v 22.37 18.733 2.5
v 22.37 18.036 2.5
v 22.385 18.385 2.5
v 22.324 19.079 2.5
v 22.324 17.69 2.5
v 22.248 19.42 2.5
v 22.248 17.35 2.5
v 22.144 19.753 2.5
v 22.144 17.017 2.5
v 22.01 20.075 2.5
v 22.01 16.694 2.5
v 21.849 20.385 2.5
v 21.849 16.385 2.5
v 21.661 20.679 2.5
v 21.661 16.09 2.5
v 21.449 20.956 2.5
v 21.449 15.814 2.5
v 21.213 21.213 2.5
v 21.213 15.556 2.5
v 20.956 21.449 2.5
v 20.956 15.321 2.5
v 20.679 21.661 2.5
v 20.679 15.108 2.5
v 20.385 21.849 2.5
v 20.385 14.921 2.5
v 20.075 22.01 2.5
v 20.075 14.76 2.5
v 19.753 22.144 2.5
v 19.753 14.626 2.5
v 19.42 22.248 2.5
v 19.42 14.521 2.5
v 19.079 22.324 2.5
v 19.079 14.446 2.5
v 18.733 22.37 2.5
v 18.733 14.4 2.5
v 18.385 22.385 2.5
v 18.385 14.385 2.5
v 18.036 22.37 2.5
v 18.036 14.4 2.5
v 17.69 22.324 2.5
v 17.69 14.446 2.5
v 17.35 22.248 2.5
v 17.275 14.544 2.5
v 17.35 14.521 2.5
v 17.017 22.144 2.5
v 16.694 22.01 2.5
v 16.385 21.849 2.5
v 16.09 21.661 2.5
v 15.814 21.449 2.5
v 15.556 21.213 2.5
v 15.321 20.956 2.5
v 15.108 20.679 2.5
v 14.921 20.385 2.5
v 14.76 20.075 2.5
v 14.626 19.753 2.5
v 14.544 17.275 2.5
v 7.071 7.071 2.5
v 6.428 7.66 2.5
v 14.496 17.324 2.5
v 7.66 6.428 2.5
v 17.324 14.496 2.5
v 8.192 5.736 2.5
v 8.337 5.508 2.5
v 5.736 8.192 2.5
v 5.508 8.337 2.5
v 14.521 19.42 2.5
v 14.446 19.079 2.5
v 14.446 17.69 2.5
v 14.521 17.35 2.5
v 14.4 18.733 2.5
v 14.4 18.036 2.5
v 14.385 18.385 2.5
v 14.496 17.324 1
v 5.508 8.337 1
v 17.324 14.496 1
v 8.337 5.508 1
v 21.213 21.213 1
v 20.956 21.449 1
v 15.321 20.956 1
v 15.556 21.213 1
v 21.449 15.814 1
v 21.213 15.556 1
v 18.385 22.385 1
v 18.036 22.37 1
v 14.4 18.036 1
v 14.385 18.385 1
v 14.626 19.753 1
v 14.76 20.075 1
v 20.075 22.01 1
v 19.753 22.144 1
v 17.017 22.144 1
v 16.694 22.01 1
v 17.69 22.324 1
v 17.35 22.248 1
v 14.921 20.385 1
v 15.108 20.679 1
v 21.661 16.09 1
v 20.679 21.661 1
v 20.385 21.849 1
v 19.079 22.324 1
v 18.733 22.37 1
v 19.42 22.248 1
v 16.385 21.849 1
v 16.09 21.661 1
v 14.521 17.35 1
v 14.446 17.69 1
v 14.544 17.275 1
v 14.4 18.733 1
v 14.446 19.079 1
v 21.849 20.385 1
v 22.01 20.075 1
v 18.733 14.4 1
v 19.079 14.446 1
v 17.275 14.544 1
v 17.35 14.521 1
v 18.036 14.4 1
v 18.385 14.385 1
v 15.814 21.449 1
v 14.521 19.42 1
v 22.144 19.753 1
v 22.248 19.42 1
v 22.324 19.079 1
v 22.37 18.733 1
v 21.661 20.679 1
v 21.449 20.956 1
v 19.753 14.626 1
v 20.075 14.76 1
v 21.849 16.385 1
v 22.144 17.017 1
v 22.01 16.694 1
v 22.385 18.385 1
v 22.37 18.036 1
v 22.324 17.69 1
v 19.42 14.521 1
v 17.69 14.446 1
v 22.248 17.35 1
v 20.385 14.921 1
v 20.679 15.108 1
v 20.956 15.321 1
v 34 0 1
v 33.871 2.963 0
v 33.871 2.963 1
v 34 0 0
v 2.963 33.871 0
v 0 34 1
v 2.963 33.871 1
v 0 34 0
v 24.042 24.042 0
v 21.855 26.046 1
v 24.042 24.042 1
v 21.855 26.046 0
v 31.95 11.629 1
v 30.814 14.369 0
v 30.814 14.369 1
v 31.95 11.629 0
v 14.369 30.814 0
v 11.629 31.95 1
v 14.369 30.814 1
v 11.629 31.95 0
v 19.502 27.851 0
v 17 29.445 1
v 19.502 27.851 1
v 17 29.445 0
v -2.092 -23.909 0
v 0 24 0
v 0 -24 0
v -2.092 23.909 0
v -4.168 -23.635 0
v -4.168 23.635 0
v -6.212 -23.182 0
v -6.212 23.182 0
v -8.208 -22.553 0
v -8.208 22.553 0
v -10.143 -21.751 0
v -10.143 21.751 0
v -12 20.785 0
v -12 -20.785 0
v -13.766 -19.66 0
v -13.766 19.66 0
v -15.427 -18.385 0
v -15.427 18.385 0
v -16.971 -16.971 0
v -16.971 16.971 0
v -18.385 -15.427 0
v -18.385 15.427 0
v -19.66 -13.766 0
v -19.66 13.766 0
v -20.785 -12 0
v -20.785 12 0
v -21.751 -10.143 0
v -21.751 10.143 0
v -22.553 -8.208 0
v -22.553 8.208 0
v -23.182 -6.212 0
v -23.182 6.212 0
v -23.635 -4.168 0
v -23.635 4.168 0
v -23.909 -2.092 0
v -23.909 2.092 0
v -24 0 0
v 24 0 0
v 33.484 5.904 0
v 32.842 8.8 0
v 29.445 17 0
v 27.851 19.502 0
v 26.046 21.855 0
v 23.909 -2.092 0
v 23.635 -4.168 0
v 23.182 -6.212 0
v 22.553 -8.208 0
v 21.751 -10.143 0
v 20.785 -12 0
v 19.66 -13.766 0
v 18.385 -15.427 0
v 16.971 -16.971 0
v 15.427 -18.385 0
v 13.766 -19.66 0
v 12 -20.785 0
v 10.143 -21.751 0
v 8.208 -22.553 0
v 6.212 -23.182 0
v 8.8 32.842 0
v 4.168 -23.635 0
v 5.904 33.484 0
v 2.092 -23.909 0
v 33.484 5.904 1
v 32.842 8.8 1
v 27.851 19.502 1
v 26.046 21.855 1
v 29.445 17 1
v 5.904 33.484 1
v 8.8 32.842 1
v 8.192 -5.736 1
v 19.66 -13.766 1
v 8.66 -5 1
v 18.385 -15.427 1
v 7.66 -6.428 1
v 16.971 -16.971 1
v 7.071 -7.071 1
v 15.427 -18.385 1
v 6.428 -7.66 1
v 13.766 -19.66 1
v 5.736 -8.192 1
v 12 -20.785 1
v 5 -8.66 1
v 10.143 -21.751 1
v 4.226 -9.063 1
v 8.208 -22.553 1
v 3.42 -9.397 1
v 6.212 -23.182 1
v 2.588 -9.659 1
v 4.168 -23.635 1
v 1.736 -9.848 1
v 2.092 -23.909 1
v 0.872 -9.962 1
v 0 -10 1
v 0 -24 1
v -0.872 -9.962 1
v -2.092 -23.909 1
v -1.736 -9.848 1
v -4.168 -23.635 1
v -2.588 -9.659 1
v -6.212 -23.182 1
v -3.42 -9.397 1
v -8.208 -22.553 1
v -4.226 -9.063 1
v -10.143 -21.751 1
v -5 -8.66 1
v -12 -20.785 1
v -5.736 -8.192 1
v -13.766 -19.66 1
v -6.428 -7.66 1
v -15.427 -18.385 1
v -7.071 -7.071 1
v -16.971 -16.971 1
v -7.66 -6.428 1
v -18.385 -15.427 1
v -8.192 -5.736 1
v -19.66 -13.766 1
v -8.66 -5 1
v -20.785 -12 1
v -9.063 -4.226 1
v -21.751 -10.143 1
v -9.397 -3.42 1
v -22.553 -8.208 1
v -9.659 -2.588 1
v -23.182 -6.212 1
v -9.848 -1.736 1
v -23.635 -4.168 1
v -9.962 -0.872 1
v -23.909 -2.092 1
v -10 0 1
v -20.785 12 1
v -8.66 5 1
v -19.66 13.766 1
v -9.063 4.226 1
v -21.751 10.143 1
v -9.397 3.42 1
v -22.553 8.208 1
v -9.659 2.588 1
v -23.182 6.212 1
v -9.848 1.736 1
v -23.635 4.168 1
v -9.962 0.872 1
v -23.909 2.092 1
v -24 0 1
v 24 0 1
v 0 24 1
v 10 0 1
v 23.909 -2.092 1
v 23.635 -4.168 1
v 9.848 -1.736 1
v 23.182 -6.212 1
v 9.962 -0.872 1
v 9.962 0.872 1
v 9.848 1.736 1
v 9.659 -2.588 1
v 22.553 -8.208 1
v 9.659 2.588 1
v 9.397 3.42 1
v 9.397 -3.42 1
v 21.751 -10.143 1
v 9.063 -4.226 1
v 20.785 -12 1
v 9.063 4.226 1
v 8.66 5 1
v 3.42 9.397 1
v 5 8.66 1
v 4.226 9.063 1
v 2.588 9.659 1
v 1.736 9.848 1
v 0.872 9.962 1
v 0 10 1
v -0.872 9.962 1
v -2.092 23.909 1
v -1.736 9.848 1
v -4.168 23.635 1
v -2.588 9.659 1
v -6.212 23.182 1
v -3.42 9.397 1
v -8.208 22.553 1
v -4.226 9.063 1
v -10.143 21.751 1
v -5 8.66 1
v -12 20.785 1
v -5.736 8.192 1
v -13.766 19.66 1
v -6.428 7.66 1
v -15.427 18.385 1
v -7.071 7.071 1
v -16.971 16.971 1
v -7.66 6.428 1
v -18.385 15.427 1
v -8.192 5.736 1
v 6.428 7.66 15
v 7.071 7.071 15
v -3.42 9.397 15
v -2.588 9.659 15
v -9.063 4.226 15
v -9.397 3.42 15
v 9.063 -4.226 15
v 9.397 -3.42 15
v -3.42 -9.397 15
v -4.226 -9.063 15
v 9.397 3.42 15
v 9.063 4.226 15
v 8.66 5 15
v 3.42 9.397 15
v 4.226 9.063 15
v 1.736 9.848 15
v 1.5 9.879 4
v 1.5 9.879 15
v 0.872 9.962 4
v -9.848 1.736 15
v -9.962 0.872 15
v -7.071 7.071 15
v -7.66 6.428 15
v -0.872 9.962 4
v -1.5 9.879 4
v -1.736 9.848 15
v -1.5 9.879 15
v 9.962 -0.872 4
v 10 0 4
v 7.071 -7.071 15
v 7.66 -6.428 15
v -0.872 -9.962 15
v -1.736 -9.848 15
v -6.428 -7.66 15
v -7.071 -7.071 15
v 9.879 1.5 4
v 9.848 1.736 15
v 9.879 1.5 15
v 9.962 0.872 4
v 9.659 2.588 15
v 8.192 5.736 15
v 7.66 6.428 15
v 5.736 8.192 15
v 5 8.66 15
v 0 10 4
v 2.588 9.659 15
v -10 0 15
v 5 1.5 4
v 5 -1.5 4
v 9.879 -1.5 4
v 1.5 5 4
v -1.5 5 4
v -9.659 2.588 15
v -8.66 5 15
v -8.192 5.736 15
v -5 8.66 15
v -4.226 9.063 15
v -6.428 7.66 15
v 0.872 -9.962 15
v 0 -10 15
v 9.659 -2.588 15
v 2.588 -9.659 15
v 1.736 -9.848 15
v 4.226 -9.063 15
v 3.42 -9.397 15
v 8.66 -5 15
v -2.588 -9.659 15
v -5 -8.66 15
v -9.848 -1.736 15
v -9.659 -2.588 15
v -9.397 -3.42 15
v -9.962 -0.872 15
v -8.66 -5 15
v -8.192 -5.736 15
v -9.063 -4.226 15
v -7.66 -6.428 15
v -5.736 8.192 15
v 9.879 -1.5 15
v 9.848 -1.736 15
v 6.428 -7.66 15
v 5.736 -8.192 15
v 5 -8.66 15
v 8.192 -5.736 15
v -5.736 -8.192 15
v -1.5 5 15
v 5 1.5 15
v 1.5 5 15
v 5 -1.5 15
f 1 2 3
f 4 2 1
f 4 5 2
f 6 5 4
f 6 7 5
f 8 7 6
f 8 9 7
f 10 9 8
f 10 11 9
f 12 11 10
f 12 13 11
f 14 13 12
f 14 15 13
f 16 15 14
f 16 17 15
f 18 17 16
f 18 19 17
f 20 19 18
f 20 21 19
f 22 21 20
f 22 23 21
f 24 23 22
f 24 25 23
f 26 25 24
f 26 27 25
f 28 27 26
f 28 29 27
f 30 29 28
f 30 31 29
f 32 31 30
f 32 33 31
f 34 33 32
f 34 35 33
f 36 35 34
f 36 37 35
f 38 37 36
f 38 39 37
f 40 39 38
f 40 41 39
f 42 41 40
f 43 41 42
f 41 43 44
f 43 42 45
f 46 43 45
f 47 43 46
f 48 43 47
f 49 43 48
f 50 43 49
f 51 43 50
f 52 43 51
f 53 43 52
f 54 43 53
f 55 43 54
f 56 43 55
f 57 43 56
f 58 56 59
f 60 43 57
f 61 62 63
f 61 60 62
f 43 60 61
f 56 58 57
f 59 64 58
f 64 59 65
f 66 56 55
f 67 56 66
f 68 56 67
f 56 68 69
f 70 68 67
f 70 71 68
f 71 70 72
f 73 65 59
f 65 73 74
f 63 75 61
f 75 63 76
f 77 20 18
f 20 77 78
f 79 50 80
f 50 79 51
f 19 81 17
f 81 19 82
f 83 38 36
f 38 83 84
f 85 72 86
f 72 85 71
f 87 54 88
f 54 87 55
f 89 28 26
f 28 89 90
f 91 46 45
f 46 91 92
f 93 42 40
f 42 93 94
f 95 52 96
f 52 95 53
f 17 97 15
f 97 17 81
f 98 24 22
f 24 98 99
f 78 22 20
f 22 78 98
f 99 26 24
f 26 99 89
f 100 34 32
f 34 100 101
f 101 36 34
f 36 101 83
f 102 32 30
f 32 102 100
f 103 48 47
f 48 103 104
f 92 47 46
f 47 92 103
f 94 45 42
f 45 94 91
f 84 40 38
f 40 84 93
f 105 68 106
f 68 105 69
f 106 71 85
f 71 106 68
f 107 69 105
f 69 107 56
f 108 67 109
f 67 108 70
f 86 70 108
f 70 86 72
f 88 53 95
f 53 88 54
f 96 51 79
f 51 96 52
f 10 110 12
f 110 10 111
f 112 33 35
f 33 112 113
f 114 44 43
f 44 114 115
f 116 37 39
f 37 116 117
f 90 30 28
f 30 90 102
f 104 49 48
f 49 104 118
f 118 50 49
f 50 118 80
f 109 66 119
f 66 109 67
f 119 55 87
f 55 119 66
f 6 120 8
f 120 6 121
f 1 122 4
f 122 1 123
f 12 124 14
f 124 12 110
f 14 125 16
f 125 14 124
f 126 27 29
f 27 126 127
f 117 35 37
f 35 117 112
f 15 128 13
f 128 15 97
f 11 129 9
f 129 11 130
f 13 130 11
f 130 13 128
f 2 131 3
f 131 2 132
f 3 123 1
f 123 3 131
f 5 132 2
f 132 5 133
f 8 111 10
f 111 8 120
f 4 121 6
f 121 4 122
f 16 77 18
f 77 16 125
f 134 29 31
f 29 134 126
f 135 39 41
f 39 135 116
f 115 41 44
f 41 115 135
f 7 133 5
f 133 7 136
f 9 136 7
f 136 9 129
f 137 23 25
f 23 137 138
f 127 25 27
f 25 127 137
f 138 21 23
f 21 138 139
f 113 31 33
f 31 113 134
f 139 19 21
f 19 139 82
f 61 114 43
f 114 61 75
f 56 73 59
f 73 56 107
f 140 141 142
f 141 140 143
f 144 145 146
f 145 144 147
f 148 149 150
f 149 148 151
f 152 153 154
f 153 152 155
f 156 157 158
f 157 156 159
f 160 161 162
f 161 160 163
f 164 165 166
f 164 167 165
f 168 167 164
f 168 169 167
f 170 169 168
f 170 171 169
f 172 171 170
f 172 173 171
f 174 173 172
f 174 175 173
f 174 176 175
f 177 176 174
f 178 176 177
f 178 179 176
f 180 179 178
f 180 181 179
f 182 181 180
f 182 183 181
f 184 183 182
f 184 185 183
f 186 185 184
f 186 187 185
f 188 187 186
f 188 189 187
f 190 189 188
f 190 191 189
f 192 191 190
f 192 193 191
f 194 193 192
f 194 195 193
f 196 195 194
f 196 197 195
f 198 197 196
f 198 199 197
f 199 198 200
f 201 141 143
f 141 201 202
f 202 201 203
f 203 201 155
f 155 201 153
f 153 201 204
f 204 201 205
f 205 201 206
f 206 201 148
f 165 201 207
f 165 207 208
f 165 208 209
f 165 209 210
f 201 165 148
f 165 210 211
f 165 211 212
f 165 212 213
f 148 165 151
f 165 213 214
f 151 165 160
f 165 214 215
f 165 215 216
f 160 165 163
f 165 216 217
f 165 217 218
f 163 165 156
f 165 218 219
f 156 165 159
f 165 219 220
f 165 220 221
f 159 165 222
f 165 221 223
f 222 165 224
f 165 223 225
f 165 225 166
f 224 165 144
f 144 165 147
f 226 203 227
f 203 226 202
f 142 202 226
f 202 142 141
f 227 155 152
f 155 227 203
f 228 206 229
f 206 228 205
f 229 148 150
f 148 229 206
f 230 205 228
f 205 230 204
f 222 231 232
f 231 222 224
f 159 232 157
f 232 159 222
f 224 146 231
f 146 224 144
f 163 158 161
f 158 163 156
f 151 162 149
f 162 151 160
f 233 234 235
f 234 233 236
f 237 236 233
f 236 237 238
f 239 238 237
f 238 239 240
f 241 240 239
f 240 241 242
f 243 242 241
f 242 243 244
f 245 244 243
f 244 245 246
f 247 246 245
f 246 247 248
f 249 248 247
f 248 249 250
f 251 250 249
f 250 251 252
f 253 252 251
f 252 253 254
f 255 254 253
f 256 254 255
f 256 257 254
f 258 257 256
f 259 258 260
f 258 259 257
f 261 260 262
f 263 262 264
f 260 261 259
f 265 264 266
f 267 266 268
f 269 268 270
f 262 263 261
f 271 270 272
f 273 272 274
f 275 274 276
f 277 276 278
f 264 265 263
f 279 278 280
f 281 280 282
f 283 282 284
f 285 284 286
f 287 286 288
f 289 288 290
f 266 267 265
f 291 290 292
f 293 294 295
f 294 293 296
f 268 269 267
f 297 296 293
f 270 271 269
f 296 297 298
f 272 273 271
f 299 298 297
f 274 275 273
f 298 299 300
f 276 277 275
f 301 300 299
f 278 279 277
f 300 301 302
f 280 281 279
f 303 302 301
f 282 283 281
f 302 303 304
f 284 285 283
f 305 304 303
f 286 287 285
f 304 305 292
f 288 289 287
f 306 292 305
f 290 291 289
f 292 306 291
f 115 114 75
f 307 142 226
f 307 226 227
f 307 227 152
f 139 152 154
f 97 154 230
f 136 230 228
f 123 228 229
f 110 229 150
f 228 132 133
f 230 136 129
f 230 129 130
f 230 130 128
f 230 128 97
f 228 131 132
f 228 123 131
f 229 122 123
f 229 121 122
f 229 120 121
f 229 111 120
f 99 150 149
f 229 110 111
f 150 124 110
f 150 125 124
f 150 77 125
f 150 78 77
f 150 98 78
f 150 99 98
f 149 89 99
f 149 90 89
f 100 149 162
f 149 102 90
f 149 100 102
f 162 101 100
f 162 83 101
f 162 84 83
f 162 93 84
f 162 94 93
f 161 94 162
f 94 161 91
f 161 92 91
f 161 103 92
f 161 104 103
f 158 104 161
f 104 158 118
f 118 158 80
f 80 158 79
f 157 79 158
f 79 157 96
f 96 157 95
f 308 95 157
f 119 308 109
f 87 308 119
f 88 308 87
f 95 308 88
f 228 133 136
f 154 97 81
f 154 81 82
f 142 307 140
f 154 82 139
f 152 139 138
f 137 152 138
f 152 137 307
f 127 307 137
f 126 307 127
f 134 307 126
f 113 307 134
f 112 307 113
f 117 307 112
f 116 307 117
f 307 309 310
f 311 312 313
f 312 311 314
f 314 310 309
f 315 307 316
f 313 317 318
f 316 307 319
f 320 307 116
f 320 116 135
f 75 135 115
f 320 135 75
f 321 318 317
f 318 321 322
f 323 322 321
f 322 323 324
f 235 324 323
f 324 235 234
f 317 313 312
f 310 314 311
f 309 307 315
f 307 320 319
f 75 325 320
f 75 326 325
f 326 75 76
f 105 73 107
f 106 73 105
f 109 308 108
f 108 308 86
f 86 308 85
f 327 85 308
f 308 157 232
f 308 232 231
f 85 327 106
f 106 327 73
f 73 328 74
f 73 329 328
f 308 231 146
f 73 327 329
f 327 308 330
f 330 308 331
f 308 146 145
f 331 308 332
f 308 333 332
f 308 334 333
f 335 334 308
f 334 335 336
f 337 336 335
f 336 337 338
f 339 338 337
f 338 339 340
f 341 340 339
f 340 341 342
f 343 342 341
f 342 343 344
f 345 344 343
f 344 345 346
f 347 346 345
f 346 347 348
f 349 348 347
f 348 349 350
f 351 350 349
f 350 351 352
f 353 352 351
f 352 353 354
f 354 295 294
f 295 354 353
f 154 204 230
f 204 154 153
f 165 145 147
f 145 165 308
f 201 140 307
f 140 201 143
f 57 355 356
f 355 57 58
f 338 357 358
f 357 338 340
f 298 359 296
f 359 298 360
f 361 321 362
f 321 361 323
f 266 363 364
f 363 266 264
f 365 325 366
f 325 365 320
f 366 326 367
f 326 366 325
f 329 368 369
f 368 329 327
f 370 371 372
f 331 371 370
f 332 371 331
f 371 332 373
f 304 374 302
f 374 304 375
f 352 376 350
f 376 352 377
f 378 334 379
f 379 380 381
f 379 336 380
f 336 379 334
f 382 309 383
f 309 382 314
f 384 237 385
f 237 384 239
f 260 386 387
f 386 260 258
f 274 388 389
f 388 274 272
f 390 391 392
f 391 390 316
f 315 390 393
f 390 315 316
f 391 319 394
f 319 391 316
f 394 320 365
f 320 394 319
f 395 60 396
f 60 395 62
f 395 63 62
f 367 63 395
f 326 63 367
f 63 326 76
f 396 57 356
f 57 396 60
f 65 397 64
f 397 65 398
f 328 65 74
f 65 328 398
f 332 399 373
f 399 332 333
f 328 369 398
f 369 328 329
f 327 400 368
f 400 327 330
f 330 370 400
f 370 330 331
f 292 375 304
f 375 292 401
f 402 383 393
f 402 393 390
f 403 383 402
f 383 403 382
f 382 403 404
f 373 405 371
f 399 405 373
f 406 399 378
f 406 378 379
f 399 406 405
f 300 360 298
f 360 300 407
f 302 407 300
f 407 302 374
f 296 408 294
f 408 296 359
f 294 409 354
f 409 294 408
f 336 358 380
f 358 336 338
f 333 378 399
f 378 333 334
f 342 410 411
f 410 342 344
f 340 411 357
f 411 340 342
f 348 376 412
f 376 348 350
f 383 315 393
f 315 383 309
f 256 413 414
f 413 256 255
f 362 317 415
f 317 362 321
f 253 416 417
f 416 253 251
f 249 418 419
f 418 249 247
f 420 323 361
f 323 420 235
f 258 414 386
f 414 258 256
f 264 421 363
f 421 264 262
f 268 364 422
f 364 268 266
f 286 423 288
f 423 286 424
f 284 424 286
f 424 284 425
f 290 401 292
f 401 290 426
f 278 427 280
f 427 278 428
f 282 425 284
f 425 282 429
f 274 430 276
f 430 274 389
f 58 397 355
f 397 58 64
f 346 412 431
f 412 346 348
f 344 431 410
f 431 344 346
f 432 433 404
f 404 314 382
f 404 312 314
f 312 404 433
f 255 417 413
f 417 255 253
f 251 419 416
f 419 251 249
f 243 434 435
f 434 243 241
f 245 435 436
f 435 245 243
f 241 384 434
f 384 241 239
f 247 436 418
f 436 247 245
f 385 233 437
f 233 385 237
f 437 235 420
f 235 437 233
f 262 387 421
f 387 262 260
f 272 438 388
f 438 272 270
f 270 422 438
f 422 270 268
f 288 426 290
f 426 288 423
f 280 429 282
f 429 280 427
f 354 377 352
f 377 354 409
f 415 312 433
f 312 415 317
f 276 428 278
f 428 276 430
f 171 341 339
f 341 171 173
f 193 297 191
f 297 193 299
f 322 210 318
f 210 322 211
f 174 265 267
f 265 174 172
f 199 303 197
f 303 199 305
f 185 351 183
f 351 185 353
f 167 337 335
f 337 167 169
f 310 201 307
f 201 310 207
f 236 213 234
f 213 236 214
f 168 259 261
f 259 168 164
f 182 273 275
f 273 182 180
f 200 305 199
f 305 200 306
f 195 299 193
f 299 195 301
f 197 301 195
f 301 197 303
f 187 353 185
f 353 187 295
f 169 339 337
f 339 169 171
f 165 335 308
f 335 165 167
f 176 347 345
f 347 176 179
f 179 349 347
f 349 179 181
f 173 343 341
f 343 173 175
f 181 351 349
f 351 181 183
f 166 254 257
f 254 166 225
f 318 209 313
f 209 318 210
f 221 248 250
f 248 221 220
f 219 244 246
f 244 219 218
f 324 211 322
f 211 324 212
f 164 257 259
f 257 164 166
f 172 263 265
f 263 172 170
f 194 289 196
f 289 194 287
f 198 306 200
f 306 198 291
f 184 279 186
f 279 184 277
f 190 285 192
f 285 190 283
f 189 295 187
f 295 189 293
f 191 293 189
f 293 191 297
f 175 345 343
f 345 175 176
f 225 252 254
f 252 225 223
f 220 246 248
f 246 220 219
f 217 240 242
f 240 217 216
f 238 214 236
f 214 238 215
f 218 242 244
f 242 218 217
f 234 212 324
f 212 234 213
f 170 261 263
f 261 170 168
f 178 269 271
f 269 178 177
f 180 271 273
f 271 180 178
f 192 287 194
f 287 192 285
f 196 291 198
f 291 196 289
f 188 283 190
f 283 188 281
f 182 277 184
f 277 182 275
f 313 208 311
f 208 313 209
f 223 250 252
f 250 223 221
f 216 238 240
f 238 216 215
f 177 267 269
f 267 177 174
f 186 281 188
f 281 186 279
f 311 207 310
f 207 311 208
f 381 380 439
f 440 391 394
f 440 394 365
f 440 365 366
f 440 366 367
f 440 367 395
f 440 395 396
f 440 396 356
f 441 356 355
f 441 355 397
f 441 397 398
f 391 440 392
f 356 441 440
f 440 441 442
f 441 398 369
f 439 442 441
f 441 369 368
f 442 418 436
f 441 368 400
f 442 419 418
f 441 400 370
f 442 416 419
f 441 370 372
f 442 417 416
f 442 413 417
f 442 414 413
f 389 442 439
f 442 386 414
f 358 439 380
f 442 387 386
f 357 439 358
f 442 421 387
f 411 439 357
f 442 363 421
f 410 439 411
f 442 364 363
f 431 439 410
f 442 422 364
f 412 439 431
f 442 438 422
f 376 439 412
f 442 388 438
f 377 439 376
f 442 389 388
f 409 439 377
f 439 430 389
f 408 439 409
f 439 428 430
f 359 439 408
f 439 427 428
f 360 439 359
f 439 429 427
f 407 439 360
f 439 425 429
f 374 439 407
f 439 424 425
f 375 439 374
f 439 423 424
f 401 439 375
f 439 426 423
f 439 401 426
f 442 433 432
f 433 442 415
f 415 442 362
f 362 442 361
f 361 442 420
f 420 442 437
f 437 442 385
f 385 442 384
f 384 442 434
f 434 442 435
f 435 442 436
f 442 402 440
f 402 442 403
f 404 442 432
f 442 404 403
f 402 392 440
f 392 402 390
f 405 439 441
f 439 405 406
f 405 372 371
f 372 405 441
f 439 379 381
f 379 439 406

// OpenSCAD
union(){
	union(){
	rotate(45.00,[0,0,1]){
	translate([11.00, 0.00, 1.50]){
	union(){
	translate([0.00, 0.00, 0.00]){
	cube([22.00,4.00,2.00], true);
}	translate([15.00, 0.00, 0.00]){
	translate([0.00, 0.00, 0.00]){
	cylinder(h = 2.000, r = 4.000, center = true, $fa = 5, $fs = 0.01);
}}	translate([11.00, 0.00, 0.00]){
	translate([0.00, 0.00, 0.00]){
	cube([1.00,4.00,2.00], true);
}}}}}	intersection(){
	translate([0.00, 0.00, 0.50]){
	translate([0.00, 0.00, 0.00]){
	cylinder(h = 1.000, r = 34.000, center = true, $fa = 5, $fs = 0.01);
}}	translate([-0.00, -0.00, 0.00]){
	scale([1.000, 1.000, 8.000]){
	linear_extrude(1.00, center = true){
polygon([[0.0,0.0], [100.0,0.0], [100.0,100.0], [0.0,100.0]],10);
}}}}	translate([0.00, 0.00, 2.00]){
	translate([0.00, 0.00, 0.00]){
	cylinder(h = 4.000, r = 10.000, center = true, $fa = 5, $fs = 0.01);
}}}	union(){
	difference(){
	translate([0.00, 0.00, 0.50]){
	translate([0.00, 0.00, 0.00]){
	cylinder(h = 1.000, r = 24.000, center = true, $fa = 5, $fs = 0.01);
}}	translate([-0.00, -0.00, 0.00]){
	scale([1.000, 1.000, 8.000]){
	linear_extrude(1.00, center = true){
polygon([[100.0,0.0], [0.0,0.0], [0.0,100.0], [100.0,100.0]],10);
}}}}	translate([0.00, 0.00, 2.00]){
	translate([0.00, 0.00, 0.00]){
	cylinder(h = 4.000, r = 10.000, center = true, $fa = 5, $fs = 0.01);
}}}	translate([0.00, 0.00, 9.50]){
	scale([1.000, 1.000, 11.000]){
	difference(){
	translate([0.00, 0.00, 0.00]){
	cylinder(h = 1.000, r = 10.000, center = true, $fa = 5, $fs = 0.01);
}	rotate(0.00,[0,0,1]){
	translate([10.00, 0.00, 0.00]){
	cube([10.00,3.00,4.00], true);
}}	rotate(90.00,[0,0,1]){
	translate([10.00, 0.00, 0.00]){
	cube([10.00,3.00,4.00], true);
}}}}}}
